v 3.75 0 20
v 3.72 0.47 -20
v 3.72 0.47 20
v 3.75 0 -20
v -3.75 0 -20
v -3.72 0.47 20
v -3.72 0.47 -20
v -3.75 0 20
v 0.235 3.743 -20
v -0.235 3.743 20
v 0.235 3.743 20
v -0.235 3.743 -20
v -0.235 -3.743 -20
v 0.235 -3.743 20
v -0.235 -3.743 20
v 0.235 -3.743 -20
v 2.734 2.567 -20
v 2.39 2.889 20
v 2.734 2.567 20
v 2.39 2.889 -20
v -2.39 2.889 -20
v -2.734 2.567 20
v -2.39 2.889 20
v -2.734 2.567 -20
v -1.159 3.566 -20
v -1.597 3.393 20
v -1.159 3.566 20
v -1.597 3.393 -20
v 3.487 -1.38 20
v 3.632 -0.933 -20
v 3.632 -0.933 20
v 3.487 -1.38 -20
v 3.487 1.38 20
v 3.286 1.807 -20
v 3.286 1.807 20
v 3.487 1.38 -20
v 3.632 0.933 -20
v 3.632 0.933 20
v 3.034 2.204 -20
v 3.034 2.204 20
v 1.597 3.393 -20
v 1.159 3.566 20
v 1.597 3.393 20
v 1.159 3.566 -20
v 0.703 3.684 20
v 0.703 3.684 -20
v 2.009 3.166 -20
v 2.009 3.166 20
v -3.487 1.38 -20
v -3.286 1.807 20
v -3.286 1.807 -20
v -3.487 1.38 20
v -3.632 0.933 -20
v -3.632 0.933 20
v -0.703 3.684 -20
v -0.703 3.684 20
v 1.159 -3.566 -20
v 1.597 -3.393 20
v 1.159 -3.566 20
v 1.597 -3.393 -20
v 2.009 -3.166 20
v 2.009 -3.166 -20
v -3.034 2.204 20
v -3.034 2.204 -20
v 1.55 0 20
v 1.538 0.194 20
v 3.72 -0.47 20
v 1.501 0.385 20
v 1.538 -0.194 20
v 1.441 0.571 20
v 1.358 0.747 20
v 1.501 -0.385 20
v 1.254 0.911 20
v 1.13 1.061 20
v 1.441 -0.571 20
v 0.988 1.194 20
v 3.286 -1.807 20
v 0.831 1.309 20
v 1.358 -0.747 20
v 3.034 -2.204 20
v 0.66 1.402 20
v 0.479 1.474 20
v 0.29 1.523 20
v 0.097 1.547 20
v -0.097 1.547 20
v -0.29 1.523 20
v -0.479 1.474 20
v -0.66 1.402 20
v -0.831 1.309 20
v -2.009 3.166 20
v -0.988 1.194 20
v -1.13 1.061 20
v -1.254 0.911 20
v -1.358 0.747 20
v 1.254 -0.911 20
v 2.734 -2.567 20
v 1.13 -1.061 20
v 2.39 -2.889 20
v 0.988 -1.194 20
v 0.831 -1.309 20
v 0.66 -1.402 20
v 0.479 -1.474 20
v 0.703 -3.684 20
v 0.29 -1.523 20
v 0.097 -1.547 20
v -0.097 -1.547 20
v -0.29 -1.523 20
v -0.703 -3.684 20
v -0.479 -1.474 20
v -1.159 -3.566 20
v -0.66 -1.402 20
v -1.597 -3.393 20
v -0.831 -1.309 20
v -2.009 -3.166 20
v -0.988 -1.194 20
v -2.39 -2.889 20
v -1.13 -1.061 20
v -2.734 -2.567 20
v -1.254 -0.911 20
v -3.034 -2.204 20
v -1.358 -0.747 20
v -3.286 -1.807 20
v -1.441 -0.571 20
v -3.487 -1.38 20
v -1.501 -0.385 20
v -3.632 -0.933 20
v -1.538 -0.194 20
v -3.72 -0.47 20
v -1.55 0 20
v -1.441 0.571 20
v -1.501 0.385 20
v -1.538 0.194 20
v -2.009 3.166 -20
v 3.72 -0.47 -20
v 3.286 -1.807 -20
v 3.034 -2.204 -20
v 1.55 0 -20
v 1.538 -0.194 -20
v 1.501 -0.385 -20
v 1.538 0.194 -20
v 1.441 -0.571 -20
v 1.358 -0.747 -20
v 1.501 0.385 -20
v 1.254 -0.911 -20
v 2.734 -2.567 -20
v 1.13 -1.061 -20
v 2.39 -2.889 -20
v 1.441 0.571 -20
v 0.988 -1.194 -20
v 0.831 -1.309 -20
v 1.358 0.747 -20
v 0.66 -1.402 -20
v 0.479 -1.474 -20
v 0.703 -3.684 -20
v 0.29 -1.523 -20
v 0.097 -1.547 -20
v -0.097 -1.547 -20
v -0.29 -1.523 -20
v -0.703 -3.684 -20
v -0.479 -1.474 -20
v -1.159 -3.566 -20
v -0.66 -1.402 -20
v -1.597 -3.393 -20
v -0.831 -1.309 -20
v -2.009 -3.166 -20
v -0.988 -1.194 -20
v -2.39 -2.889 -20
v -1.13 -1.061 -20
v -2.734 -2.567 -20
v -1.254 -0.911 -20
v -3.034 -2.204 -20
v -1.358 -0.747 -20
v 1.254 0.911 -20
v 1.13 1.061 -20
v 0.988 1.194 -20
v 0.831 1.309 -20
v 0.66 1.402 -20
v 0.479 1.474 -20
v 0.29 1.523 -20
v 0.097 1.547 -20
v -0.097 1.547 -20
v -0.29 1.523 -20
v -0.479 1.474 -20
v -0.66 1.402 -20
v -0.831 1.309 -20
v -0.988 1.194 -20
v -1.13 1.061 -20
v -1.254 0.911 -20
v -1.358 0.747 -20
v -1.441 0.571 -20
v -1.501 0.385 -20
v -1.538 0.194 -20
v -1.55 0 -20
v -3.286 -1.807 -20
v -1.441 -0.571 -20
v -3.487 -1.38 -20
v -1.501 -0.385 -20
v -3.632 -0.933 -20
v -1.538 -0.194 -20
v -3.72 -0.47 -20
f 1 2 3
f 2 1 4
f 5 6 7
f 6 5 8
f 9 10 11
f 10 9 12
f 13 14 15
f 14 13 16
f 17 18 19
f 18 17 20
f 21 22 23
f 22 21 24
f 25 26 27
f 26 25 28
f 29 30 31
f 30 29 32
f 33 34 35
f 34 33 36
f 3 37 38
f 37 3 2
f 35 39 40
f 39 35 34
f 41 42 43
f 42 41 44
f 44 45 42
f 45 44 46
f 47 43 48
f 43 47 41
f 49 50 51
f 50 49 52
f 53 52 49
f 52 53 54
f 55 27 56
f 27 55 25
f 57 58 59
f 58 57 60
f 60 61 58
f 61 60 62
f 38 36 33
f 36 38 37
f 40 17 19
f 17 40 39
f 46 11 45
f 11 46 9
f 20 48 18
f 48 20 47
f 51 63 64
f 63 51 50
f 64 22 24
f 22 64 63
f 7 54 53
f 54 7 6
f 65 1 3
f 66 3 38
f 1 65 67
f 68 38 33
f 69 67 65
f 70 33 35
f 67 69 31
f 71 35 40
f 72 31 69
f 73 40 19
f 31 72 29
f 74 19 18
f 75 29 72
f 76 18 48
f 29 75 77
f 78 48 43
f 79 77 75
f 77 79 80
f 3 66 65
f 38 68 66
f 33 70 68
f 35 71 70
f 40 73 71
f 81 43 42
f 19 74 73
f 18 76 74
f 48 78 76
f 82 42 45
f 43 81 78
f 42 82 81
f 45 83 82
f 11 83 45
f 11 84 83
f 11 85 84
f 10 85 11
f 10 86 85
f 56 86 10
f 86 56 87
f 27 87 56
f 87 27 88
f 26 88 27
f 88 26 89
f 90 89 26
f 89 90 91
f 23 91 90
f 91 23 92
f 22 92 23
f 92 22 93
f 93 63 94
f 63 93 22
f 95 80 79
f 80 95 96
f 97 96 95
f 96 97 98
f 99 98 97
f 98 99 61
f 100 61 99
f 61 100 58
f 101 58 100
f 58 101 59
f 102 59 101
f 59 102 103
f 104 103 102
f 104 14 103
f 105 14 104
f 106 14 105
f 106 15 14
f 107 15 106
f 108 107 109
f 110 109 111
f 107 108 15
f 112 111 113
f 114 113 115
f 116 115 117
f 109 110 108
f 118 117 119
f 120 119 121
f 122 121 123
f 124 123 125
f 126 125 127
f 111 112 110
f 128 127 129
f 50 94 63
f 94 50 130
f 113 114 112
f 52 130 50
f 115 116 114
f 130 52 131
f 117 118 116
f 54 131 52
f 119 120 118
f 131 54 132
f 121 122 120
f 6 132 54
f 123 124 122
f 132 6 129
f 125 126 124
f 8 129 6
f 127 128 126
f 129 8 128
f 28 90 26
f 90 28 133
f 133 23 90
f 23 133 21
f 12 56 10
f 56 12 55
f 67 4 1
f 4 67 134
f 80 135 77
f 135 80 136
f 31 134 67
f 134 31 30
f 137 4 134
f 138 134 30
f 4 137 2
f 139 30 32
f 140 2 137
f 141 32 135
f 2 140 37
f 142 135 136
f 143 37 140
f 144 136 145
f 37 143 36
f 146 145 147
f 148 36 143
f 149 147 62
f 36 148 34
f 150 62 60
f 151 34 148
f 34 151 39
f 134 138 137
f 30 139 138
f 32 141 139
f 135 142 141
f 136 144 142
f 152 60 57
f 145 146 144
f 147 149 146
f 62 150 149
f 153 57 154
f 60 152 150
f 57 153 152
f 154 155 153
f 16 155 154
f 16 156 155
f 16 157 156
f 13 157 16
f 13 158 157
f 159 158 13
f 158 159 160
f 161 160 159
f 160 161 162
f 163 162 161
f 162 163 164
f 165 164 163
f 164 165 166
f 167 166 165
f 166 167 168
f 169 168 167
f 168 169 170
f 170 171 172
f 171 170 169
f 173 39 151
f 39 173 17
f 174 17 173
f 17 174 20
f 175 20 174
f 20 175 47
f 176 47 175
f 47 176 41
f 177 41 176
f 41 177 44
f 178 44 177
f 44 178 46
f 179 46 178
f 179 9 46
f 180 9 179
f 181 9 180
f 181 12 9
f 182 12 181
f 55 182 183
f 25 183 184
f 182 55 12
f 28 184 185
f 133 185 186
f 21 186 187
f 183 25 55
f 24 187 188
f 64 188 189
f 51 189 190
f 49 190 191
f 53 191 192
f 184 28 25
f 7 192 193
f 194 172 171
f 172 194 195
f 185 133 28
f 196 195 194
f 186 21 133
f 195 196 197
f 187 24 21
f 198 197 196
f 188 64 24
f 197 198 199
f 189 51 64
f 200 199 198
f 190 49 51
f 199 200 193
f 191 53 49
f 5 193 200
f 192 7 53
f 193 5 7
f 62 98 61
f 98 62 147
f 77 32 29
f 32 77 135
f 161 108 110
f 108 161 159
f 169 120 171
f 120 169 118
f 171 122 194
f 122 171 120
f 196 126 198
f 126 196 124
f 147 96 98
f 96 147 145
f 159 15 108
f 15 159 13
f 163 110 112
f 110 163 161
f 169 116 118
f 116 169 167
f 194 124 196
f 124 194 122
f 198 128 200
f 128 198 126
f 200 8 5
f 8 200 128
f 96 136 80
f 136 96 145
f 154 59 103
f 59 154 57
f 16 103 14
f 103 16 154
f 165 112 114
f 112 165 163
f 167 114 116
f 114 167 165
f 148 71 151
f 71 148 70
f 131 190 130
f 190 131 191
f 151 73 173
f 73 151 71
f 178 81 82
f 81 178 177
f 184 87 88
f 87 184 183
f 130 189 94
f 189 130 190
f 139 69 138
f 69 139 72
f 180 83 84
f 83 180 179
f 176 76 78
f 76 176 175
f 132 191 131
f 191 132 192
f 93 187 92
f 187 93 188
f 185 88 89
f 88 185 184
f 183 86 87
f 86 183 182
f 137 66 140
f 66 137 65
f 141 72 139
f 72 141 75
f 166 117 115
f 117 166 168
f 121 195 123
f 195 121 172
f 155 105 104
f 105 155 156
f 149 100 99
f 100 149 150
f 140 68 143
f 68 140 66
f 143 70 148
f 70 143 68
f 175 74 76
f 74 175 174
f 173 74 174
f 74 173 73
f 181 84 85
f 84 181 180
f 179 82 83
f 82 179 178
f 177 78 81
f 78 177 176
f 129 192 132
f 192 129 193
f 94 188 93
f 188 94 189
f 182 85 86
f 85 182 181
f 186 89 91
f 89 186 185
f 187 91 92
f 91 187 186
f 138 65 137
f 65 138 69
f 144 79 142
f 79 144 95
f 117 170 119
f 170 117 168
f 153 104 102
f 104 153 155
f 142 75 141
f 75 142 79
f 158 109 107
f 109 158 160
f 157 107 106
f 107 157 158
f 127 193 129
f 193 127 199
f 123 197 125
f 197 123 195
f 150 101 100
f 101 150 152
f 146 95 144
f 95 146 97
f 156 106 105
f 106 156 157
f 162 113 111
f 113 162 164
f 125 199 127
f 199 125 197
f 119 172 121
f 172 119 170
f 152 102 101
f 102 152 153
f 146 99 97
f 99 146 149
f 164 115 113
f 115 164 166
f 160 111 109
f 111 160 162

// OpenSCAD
$fn = 50;


difference() {
	union() {
		translate(v = [0, 0, -20.0000000000]) {
			cylinder(h = 40, r = 3.7500000000);
		}
	}
	union() {
		translate(v = [0, 0, -100.0000000000]) {
			cylinder(h = 200, r = 1.5500000000);
		}
	}
}
